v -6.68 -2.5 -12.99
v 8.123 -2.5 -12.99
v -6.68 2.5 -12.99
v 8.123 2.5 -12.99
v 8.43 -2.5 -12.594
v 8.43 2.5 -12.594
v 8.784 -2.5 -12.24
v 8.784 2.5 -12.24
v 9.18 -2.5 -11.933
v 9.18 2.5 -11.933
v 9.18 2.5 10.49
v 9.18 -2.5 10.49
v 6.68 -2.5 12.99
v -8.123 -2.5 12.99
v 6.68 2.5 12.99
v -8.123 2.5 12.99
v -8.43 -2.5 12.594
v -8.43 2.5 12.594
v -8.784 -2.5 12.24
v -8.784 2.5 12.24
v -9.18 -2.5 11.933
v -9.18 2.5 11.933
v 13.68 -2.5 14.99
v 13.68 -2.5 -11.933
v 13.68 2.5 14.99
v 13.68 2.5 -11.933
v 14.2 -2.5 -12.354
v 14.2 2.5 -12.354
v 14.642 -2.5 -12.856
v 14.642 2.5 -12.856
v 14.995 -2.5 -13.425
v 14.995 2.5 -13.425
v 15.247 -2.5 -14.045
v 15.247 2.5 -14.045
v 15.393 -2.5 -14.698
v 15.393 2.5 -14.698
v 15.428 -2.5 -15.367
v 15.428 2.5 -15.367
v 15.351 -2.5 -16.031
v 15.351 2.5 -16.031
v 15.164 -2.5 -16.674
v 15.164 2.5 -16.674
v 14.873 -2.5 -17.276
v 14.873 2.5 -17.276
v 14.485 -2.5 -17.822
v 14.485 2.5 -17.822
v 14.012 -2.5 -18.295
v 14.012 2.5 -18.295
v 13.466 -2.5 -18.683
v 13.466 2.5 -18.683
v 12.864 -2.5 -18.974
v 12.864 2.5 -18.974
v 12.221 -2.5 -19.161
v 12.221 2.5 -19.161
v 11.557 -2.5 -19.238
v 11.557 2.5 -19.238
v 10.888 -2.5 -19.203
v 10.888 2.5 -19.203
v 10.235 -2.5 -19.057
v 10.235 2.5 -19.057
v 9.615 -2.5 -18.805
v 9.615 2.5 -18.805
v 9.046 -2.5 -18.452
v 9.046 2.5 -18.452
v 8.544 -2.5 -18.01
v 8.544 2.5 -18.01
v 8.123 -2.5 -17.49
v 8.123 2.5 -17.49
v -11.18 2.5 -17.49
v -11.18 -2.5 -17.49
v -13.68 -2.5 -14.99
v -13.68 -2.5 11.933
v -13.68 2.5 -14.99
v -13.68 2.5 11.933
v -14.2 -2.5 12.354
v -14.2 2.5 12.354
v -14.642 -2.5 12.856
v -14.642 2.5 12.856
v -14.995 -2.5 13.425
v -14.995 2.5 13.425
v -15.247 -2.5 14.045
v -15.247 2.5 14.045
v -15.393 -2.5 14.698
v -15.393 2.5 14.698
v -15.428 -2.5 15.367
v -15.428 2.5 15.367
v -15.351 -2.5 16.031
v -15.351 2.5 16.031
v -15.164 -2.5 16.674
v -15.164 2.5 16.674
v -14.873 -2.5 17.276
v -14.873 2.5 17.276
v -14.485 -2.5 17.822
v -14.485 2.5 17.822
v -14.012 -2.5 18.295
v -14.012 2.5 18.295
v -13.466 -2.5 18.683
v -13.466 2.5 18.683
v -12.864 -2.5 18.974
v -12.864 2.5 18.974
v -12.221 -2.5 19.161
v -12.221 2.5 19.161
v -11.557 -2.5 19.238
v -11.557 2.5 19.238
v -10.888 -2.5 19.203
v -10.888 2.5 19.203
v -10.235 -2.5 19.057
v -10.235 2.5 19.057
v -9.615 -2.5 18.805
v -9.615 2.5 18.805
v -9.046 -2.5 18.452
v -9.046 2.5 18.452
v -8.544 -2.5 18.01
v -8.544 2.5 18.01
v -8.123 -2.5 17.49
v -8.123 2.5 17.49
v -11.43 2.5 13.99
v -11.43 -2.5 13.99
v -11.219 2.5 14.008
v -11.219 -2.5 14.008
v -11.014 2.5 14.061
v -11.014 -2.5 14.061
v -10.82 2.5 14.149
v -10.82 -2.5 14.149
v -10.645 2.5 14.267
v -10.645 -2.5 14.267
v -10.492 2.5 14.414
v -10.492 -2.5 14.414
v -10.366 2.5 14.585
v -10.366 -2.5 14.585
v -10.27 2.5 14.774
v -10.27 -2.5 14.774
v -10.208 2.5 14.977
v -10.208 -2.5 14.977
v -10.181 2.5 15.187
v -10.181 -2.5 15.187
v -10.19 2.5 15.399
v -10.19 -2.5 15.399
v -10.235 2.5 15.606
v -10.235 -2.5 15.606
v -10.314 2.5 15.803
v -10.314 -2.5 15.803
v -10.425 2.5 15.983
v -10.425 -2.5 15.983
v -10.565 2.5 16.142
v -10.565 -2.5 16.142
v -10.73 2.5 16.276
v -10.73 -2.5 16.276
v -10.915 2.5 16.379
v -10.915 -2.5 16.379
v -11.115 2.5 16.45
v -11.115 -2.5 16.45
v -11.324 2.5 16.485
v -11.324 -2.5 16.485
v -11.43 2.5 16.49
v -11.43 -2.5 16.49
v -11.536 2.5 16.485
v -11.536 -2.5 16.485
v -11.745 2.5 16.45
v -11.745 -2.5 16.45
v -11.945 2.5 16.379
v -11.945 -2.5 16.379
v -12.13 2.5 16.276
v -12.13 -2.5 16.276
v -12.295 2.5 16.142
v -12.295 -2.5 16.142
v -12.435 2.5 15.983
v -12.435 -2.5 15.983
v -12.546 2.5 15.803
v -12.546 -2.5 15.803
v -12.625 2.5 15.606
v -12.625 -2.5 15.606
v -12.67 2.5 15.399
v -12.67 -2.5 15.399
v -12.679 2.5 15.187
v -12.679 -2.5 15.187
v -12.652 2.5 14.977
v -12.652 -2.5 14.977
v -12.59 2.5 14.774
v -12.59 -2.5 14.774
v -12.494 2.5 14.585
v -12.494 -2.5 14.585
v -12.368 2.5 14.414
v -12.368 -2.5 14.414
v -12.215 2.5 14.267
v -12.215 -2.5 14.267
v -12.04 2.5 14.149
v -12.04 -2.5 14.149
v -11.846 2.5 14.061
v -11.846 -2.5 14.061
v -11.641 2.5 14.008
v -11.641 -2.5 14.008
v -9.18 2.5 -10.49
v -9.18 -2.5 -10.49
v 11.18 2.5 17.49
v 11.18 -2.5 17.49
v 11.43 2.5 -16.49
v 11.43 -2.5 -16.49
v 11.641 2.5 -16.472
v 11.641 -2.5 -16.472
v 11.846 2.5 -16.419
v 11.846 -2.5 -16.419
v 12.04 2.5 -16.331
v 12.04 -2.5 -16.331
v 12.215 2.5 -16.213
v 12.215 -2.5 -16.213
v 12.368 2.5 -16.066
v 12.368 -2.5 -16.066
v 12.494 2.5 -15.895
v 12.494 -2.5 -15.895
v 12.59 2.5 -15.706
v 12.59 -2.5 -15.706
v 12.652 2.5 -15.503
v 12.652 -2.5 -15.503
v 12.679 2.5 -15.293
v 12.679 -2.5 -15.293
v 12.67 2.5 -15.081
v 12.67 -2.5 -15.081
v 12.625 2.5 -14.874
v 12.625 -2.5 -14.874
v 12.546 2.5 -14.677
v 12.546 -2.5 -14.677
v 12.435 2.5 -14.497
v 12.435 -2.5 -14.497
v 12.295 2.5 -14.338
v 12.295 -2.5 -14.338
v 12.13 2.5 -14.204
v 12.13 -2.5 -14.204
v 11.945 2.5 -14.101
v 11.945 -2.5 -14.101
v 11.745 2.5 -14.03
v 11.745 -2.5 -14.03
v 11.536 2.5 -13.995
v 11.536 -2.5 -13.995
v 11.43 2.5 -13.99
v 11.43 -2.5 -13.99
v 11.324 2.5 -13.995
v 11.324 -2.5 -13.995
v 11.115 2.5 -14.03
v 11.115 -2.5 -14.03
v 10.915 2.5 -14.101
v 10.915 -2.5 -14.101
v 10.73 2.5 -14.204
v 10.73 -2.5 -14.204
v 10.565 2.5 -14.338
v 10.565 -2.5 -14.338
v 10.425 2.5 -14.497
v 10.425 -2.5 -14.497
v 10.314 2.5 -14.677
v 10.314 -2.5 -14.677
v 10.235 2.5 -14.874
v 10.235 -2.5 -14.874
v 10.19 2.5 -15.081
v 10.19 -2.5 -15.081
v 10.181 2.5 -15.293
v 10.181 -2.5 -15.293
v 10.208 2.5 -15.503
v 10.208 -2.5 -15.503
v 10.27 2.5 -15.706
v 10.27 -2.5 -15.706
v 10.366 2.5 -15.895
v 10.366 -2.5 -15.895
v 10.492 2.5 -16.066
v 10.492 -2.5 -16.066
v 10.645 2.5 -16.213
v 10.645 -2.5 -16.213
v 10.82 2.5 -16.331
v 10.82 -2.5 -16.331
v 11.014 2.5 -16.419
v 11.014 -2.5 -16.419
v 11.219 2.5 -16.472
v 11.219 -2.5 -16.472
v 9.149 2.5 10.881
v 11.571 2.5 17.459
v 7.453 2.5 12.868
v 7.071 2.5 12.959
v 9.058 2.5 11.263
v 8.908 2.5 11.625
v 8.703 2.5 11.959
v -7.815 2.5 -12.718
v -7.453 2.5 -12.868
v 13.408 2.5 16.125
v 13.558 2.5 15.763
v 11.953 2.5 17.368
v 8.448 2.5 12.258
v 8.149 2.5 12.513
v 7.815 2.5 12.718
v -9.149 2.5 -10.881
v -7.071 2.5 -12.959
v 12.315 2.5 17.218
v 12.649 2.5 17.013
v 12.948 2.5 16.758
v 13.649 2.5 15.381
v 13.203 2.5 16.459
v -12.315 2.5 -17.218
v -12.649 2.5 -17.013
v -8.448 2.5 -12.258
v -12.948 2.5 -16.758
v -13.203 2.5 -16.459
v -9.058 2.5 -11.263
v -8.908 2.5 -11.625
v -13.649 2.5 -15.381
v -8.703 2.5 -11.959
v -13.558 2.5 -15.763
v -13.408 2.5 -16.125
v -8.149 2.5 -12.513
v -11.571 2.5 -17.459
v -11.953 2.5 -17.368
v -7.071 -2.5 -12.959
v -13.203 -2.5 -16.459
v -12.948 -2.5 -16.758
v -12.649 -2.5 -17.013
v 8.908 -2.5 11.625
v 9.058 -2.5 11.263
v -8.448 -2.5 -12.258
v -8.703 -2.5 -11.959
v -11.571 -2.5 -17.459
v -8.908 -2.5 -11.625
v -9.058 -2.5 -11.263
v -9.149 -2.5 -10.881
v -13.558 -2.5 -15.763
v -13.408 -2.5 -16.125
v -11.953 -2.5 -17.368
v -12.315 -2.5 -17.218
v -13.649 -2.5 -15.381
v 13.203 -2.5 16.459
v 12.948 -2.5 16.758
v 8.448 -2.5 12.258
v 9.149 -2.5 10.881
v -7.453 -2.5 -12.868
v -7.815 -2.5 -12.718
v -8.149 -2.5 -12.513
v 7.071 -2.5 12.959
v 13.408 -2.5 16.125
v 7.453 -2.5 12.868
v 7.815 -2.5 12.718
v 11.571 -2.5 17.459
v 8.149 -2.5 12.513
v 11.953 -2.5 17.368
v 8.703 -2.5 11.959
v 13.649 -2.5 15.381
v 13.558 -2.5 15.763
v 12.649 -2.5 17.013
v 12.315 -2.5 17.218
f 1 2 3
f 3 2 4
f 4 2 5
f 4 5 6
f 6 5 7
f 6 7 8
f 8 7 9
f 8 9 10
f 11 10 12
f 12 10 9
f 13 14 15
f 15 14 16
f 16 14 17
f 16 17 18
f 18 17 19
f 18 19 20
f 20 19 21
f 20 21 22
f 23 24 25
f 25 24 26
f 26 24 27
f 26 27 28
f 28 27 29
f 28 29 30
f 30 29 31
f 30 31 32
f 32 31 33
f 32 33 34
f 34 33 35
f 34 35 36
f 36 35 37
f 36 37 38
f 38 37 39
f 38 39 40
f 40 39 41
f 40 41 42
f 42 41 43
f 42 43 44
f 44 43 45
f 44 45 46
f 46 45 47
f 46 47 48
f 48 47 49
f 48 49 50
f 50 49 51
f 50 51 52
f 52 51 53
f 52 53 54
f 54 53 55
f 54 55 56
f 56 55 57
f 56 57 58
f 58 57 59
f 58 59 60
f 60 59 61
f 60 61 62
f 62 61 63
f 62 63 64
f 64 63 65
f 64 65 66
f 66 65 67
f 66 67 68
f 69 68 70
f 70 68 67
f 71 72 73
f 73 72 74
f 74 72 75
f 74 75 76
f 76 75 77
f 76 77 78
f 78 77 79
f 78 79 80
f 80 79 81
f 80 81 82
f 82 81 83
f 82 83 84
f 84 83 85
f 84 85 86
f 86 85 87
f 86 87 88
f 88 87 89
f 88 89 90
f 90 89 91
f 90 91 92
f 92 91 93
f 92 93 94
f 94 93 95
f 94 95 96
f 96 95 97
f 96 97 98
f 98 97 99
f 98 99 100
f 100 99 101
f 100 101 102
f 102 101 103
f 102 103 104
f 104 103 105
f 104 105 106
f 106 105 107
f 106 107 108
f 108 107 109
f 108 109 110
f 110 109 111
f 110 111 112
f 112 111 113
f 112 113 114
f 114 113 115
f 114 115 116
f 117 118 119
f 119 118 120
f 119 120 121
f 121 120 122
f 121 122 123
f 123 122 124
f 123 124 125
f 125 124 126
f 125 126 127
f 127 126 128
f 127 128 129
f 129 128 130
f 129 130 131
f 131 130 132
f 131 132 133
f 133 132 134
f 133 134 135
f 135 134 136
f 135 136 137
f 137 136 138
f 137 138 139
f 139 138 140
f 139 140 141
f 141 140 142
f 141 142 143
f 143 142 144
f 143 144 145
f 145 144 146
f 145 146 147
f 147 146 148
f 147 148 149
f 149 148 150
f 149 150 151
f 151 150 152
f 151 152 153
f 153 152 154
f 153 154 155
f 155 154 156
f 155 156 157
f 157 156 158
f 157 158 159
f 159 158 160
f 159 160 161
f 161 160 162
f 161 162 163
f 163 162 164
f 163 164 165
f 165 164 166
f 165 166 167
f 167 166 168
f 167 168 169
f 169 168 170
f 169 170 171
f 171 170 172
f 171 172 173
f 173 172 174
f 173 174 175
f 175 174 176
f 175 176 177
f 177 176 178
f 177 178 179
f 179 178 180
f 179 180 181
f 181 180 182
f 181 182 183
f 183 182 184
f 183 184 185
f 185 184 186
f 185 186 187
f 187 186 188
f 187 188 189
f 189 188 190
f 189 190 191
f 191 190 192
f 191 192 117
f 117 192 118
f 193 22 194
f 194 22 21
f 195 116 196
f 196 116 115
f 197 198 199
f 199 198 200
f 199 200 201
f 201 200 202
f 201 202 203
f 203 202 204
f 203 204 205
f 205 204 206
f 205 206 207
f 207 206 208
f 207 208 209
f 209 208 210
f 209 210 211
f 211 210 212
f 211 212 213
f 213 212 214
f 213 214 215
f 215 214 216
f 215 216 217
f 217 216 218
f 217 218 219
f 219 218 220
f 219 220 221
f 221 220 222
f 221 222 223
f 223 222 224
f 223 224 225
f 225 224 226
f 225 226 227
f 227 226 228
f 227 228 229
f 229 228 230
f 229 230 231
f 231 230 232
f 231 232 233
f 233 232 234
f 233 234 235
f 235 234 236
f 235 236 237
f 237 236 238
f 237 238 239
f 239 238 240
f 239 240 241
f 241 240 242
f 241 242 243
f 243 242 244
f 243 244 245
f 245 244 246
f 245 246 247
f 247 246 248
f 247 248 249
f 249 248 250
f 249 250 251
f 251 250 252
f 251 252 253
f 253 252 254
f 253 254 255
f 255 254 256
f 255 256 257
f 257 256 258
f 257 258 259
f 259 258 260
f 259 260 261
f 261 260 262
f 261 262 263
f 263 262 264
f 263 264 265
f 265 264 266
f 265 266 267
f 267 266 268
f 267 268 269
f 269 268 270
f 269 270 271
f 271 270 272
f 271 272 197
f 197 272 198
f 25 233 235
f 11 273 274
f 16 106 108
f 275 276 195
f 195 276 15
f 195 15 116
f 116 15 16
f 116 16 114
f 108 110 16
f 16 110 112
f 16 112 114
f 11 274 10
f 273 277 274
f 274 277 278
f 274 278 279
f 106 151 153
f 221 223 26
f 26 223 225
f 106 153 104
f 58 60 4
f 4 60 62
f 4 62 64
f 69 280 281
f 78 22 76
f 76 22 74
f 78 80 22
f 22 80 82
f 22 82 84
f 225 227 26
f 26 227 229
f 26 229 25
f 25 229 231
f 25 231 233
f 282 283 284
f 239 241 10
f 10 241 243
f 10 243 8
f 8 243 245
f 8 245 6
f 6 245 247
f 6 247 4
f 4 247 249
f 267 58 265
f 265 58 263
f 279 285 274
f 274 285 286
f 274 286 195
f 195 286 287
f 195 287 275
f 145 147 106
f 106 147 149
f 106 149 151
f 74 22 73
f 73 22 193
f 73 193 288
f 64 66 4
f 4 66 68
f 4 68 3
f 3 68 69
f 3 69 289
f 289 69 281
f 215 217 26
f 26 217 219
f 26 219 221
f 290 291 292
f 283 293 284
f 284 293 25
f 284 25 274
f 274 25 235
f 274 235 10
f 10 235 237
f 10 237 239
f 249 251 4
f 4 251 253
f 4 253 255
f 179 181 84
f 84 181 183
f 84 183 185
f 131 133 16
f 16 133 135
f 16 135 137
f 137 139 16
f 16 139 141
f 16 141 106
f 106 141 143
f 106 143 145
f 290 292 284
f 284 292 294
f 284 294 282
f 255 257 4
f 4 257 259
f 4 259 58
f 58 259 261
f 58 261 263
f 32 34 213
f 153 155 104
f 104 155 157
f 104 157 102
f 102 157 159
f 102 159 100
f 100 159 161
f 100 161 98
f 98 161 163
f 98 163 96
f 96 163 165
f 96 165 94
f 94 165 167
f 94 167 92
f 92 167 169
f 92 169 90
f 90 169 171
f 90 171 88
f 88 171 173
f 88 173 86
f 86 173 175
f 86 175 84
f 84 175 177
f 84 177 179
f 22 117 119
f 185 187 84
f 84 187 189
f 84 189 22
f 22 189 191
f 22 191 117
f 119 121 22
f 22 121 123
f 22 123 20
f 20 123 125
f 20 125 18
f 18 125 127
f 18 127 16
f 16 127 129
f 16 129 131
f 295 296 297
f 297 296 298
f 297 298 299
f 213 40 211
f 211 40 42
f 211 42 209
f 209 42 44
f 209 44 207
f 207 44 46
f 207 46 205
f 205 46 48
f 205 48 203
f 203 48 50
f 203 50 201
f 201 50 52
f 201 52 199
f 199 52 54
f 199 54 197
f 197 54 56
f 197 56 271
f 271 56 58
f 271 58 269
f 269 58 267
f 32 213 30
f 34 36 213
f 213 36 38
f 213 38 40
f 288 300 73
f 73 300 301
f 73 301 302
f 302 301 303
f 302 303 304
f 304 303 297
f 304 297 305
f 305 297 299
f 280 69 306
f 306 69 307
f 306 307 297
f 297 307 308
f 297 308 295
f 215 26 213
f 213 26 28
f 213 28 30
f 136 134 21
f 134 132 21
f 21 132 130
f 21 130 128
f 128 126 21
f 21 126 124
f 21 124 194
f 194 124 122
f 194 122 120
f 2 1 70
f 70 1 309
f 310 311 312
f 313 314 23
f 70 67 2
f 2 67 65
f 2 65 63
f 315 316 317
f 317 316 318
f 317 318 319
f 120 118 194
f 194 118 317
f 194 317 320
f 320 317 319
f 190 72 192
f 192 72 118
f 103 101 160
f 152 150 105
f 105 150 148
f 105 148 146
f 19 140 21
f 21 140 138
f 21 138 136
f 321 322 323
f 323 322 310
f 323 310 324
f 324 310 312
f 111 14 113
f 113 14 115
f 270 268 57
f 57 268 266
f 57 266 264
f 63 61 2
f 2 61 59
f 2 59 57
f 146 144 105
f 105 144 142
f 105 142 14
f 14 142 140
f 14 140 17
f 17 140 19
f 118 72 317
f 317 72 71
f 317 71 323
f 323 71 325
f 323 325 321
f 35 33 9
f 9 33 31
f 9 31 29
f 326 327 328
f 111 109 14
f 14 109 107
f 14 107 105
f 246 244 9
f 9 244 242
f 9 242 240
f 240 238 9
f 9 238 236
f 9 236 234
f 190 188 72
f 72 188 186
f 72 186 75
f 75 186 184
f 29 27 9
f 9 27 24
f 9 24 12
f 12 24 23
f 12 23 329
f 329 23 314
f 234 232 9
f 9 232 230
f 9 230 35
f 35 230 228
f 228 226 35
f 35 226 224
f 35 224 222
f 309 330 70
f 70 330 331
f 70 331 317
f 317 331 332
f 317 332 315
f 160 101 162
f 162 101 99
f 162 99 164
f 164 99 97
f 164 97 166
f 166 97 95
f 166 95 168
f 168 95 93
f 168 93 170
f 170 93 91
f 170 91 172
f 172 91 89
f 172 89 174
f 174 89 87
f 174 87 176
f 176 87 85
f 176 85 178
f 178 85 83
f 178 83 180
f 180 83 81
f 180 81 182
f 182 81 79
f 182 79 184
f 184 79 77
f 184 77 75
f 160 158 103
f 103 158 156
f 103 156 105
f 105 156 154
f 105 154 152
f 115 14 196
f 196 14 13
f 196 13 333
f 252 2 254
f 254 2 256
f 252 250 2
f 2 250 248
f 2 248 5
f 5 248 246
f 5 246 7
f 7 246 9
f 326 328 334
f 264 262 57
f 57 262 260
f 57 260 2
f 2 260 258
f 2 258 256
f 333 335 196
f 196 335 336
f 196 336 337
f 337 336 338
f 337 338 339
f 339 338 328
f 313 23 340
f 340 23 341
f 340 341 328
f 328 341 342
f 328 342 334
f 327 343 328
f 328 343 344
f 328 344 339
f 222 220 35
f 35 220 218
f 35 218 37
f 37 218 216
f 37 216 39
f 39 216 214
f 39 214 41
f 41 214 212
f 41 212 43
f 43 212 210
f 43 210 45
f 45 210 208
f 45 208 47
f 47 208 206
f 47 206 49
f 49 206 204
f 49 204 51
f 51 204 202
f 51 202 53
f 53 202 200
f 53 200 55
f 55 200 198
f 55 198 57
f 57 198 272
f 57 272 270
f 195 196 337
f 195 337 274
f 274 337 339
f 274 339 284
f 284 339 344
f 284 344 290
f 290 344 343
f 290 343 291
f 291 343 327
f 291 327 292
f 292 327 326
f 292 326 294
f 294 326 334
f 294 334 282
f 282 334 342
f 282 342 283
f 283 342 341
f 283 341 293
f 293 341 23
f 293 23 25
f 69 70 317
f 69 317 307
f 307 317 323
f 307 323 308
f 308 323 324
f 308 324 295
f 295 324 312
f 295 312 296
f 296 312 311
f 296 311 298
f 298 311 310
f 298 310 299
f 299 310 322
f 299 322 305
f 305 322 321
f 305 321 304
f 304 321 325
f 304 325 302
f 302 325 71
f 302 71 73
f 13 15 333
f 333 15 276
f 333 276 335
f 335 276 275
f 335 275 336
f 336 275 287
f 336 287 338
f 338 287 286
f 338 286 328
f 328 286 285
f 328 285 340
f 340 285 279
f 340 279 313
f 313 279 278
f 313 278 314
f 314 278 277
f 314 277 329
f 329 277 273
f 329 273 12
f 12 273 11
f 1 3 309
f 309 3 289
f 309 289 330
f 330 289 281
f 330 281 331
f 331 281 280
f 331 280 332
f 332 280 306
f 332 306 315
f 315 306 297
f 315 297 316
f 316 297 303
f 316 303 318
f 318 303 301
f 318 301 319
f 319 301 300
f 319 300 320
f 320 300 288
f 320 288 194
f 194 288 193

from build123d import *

# Parameters (mm, degrees)
CROQUIS1_R              = 4
CROQUIS1_R_2            = 1.25
SALIENTE_EXTRUIR1_DEPTH = 2.5
REDONDEO1_R             = 2.5


with BuildPart() as part:
    # Croquis1 → Saliente-Extruir1 (new, symmetric)
    # profile 1 of 4: a face of its own
    with BuildSketch(Plane(origin=(0, 0, 0), x_dir=(1, 0, 0), z_dir=(0, 1, 0))):
        with BuildLine():
            Line((-13.68, 17.49), (-13.68, -11.932810861))
            ThreePointArc((-13.68, -11.932810861), (-11.43, -11.24), (-9.18, -11.932810861))
            Line((-9.18, -11.932810861), (-9.18, 12.99))
            Line((-9.18, 12.99), (8.122810861, 12.99))
            ThreePointArc((8.122810861, 12.99), (7.43, 15.24), (8.122810861, 17.49))
            Line((8.122810861, 17.49), (-13.68, 17.49))
        make_face()
    # profile 2 of 4: a face of its own
    with BuildSketch(Plane(origin=(0, 0, 0), x_dir=(1, 0, 0), z_dir=(0, 1, 0))):
        with BuildLine():
            ThreePointArc((-7.43, -15.24), (-7.607124344, -16.417124344), (-8.122810861, -17.49))
            Line((-8.122810861, -17.49), (13.68, -17.49))
            Line((13.68, -17.49), (13.68, 11.932810861))
            ThreePointArc((13.68, 11.932810861), (11.43, 11.24), (9.18, 11.932810861))
            Line((9.18, 11.932810861), (9.18, -12.99))
            Line((9.18, -12.99), (-8.122810861, -12.99))
            ThreePointArc((-8.122810861, -12.99), (-7.607124344, -14.062875656), (-7.43, -15.24))
        make_face()
    # profile 3 of 4: a face of its own
    with BuildSketch(Plane(origin=(0, 0, 0), x_dir=(1, 0, 0), z_dir=(0, 1, 0))):
        with Locations((11.43, 15.24)):
            Circle(CROQUIS1_R)
        with Locations(Location((11.43, 15.24, 0), (0, 0, 270))):
            Circle(CROQUIS1_R_2, mode=Mode.SUBTRACT)
    # profile 4 of 4: a face of its own
    with BuildSketch(Plane(origin=(0, 0, 0), x_dir=(1, 0, 0), z_dir=(0, 1, 0))):
        with Locations((-11.43, -15.24)):
            Circle(CROQUIS1_R)
        with Locations(Location((-11.43, -15.24, 0), (0, 0, 270))):
            Circle(CROQUIS1_R_2, mode=Mode.SUBTRACT)
    extrude(amount=SALIENTE_EXTRUIR1_DEPTH, both=True)

    # Redondeo1
    redondeo1_edges = [part.edges().sort_by_distance(p)[0] for p in [
        (-9.18, 0, -12.99),
        (9.18, 0, 12.99),
        (13.68, 0, 17.49),
        (-13.68, 0, -17.49),
    ]]
    fillet(redondeo1_edges, radius=REDONDEO1_R)


solid = part.part
